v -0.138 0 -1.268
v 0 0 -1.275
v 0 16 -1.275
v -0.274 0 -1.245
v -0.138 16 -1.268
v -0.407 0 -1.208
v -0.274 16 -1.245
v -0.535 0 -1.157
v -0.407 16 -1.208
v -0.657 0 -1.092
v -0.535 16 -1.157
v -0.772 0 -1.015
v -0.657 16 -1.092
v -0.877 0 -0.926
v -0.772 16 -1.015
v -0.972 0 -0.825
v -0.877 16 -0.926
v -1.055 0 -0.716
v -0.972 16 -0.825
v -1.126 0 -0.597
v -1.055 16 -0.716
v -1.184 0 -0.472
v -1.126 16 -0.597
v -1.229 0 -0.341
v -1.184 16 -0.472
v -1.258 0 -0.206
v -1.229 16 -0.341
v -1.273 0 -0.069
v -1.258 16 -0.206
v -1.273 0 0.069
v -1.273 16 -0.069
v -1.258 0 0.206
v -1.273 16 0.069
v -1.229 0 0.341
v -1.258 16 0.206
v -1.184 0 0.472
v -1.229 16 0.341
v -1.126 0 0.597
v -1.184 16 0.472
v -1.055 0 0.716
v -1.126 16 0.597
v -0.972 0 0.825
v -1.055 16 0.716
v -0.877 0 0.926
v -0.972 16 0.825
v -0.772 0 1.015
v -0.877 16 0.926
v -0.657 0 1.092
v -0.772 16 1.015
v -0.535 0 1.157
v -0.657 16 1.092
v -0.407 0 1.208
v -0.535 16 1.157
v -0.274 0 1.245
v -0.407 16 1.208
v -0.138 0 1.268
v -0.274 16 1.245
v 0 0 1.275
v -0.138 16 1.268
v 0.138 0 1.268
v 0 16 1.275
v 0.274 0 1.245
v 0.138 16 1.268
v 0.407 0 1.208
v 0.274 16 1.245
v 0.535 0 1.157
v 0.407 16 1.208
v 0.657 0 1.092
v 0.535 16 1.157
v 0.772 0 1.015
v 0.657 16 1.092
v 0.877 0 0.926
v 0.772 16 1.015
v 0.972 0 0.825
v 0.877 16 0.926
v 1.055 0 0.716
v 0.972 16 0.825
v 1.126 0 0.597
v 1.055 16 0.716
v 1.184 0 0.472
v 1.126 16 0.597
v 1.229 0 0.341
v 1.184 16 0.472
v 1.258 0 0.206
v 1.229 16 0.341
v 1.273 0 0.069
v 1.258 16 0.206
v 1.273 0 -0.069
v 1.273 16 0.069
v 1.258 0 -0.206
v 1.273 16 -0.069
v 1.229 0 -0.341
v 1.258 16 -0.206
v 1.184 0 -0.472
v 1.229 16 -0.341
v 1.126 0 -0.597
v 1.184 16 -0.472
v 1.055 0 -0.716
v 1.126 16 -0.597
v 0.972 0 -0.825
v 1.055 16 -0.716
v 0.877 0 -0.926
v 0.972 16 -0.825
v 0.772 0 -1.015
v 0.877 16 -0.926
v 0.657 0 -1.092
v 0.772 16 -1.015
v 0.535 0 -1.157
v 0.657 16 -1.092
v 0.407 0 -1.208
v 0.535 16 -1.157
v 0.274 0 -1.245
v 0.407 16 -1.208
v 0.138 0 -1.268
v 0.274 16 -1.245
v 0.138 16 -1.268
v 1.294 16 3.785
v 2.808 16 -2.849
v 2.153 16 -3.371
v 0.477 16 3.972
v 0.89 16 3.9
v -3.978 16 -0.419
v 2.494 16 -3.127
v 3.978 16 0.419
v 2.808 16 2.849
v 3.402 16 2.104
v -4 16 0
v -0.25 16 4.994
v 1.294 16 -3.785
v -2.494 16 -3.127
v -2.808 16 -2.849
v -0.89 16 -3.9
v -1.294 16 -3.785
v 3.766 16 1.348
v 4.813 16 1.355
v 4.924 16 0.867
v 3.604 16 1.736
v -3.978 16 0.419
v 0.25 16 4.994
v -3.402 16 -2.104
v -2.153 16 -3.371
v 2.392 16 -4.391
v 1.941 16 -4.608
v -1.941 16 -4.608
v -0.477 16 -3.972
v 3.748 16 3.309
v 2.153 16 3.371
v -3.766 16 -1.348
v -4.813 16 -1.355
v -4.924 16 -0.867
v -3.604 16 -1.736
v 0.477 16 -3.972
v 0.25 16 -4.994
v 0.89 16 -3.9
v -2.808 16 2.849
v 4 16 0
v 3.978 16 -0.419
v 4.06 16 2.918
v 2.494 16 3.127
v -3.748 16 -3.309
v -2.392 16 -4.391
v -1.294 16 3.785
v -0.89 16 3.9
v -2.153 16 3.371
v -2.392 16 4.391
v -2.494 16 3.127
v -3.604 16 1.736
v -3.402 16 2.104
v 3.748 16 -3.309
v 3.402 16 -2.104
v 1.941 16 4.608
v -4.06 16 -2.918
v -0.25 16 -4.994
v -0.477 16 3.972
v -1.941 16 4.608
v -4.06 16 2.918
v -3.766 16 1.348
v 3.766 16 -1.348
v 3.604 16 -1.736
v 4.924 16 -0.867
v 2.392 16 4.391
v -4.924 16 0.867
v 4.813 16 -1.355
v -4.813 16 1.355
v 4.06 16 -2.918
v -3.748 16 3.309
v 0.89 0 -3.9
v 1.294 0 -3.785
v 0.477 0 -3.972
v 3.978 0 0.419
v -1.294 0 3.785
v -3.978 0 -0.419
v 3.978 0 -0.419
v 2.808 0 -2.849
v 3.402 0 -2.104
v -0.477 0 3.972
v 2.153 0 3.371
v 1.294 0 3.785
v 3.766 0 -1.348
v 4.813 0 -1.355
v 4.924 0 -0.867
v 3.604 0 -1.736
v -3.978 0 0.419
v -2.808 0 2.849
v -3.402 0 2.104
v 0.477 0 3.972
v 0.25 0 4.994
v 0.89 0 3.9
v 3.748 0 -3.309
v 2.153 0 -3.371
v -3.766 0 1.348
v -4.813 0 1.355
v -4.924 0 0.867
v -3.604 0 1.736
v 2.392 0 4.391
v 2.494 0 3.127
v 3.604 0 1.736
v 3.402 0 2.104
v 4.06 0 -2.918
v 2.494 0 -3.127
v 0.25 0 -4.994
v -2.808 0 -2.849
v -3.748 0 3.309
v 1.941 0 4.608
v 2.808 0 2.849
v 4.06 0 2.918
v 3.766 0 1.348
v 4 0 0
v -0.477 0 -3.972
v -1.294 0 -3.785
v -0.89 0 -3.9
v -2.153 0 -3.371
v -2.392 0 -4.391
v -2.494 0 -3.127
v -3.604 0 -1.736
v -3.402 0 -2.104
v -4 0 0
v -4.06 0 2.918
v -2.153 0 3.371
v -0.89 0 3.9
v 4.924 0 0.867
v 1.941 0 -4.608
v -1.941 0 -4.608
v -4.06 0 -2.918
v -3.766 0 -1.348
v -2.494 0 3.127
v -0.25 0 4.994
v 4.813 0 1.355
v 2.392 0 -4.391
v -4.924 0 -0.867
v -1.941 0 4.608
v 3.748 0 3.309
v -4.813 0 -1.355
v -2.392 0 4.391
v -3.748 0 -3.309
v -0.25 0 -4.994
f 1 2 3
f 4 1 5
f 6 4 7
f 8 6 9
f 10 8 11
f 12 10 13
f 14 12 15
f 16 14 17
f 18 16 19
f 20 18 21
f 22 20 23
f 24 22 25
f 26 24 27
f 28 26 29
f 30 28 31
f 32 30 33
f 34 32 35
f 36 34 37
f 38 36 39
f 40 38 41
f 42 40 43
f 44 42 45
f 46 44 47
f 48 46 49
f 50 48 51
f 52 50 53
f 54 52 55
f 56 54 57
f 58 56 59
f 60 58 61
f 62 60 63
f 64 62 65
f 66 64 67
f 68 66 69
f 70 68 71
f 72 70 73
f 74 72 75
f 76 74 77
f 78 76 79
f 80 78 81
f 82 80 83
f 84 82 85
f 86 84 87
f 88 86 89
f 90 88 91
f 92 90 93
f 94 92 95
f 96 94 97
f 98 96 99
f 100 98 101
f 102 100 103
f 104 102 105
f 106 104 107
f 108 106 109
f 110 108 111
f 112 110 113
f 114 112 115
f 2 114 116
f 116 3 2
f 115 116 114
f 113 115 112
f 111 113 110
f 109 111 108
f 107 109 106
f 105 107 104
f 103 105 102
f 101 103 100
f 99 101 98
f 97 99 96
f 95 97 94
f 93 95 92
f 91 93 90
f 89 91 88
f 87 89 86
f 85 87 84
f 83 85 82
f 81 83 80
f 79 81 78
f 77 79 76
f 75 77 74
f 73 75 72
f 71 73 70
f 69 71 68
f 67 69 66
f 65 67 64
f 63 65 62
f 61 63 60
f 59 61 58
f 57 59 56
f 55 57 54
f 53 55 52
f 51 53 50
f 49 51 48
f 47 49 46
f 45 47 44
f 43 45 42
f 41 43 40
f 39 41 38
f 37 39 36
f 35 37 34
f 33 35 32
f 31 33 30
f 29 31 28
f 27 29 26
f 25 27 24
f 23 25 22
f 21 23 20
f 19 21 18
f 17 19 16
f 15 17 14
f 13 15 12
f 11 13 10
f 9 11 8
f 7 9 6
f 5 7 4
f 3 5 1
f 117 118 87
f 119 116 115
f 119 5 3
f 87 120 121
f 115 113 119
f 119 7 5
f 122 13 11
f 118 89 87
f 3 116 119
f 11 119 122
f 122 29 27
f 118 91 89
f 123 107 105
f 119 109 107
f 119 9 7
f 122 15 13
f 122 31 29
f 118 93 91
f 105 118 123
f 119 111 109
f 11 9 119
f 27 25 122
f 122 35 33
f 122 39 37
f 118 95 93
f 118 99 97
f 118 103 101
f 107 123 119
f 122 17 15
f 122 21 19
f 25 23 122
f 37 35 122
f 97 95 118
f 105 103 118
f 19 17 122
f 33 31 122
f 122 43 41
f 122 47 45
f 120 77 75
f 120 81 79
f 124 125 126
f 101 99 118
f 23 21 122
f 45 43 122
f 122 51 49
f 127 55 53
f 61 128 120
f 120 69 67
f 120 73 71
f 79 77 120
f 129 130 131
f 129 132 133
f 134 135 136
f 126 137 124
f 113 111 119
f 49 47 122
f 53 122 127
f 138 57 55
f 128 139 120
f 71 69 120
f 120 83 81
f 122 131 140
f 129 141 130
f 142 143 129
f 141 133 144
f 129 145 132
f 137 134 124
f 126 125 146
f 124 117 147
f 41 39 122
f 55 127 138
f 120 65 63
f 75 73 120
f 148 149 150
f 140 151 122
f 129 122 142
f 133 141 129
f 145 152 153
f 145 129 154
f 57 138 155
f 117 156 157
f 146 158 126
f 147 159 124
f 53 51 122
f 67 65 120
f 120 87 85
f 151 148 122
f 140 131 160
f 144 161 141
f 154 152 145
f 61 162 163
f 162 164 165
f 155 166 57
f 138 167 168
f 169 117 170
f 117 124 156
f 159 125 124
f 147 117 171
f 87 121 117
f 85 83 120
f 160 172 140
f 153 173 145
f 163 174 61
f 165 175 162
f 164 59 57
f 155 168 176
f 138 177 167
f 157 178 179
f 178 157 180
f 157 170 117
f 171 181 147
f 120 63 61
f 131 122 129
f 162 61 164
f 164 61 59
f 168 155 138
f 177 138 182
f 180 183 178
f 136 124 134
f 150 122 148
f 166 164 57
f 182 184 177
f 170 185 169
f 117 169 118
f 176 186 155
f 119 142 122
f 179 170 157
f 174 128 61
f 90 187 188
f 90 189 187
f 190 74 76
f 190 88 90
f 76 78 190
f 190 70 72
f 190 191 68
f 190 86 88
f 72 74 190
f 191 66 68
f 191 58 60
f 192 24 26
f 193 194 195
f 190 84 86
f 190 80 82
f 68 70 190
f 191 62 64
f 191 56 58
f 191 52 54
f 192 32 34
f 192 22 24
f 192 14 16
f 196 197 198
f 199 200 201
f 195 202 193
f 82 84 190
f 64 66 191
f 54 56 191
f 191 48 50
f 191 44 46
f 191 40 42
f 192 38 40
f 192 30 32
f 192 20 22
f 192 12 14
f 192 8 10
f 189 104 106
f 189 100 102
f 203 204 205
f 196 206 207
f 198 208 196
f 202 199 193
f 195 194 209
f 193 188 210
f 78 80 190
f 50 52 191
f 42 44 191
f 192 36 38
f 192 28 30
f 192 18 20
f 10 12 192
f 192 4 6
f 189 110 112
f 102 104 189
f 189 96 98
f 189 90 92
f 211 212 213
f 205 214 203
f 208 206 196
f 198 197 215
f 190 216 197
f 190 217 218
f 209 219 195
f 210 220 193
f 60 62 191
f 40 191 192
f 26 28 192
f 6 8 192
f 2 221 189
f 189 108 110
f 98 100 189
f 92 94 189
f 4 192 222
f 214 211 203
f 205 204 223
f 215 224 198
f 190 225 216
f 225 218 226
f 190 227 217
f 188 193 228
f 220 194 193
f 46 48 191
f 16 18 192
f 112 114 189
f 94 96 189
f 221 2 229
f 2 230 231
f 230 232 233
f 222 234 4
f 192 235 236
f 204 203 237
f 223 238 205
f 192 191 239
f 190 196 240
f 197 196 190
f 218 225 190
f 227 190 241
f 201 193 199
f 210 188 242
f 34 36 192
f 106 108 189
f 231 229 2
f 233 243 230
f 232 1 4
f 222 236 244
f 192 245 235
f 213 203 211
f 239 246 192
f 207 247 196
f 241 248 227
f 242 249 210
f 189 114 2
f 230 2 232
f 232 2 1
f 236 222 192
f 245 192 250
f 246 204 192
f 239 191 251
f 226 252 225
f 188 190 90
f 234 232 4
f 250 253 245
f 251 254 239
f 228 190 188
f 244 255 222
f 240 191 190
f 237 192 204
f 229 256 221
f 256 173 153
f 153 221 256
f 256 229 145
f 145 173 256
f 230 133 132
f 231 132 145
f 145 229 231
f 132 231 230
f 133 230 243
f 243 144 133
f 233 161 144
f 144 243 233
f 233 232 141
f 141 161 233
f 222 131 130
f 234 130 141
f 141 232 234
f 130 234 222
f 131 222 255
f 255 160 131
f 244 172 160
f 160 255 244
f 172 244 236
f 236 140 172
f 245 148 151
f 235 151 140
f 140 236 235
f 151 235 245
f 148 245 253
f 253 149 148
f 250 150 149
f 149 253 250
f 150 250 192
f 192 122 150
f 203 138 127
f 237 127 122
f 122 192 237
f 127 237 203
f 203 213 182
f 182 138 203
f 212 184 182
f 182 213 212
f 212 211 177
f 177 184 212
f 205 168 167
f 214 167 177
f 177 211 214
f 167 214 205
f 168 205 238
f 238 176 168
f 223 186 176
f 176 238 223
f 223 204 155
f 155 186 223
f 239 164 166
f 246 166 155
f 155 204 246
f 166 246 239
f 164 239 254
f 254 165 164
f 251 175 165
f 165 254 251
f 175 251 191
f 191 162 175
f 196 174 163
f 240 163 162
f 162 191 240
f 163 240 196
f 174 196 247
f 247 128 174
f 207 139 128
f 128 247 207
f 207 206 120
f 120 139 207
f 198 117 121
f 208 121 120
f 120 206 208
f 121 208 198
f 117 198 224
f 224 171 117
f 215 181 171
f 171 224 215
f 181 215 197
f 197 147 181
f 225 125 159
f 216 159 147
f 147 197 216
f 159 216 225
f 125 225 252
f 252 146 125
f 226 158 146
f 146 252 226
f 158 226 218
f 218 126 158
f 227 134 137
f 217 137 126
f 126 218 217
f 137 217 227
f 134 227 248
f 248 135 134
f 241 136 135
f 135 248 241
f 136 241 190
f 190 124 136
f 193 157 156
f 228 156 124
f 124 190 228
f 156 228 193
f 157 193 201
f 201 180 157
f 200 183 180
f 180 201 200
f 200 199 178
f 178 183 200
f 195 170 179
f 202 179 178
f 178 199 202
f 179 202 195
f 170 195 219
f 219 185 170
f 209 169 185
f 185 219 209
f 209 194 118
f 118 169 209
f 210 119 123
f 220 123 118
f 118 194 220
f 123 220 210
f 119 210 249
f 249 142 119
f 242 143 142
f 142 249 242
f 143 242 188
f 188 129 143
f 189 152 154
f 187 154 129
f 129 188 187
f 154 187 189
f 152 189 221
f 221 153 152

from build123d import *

# Parameters (mm, degrees)
BOSS_EXTRUDE1_DEPTH = 16
SKETCH2_R           = 1.275
CUT_EXTRUDE1_DEPTH  = 18.471332994


with BuildPart() as part:
    # Sketch1 → Boss-Extrude1 (new body)
    with BuildSketch(Plane(origin=(0, 0, 0), x_dir=(1, 0, 0), z_dir=(0, 1, 0))):
        with BuildLine():
            Line((-0.25, 4.993746089), (-0.476626074, 3.971501931))
            ThreePointArc((-0.476626074, 3.971501931), (-0.890083736, 3.899711649), (-1.293744854, 3.784999901))
            Line((-1.293744854, 3.784999901), (-1.941463008, 4.607680695))
            ThreePointArc((-1.941463008, 4.607680695), (-2.169418696, 4.50484434), (-2.391947442, 4.390738825))
            Line((-2.391947442, 4.390738825), (-2.152595362, 3.371399295))
            ThreePointArc((-2.152595362, 3.371399295), (-2.493959207, 3.12732593), (-2.807873746, 2.848832222))
            Line((-2.807873746, 2.848832222), (-3.748395457, 3.30900763))
            ThreePointArc((-3.748395457, 3.30900763), (-3.909157412, 3.117449009), (-4.060140358, 2.918091889))
            Line((-4.060140358, 2.918091889), (-3.402216738, 2.103549682))
            ThreePointArc((-3.402216738, 2.103549682), (-3.603875472, 1.735534956), (-3.765868806, 1.348418382))
            Line((-3.765868806, 1.348418382), (-4.812912215, 1.354945022))
            ThreePointArc((-4.812912215, 1.354945022), (-4.874639561, 1.11260467), (-4.924172682, 0.867481066))
            Line((-4.924172682, 0.867481066), (-3.977987365, 0.419066256))
            ThreePointArc((-3.977987365, 0.419066256), (-4, 0), (-3.977987365, -0.419066256))
            Line((-3.977987365, -0.419066256), (-4.924172682, -0.867481066))
            ThreePointArc((-4.924172682, -0.867481066), (-4.874639561, -1.11260467), (-4.812912215, -1.354945022))
            Line((-4.812912215, -1.354945022), (-3.765868806, -1.348418382))
            ThreePointArc((-3.765868806, -1.348418382), (-3.603875472, -1.735534956), (-3.402216738, -2.103549682))
            Line((-3.402216738, -2.103549682), (-4.060140358, -2.918091889))
            ThreePointArc((-4.060140358, -2.918091889), (-3.909157412, -3.117449009), (-3.748395457, -3.30900763))
            Line((-3.748395457, -3.30900763), (-2.807873746, -2.848832222))
            ThreePointArc((-2.807873746, -2.848832222), (-2.493959207, -3.12732593), (-2.152595362, -3.371399295))
            Line((-2.152595362, -3.371399295), (-2.391947442, -4.390738825))
            ThreePointArc((-2.391947442, -4.390738825), (-2.169418696, -4.50484434), (-1.941463008, -4.607680695))
            Line((-1.941463008, -4.607680695), (-1.293744854, -3.784999901))
            ThreePointArc((-1.293744854, -3.784999901), (-0.890083736, -3.899711649), (-0.476626074, -3.971501931))
            Line((-0.476626074, -3.971501931), (-0.25, -4.993746089))
            ThreePointArc((-0.25, -4.993746089), (0, -5), (0.25, -4.993746089))
            Line((0.25, -4.993746089), (0.476626074, -3.971501931))
            ThreePointArc((0.476626074, -3.971501931), (0.890083736, -3.899711649), (1.293744854, -3.784999901))
            Line((1.293744854, -3.784999901), (1.941463008, -4.607680695))
            ThreePointArc((1.941463008, -4.607680695), (2.169418696, -4.50484434), (2.391947442, -4.390738825))
            Line((2.391947442, -4.390738825), (2.152595362, -3.371399295))
            ThreePointArc((2.152595362, -3.371399295), (2.493959207, -3.12732593), (2.807873746, -2.848832222))
            Line((2.807873746, -2.848832222), (3.748395457, -3.30900763))
            ThreePointArc((3.748395457, -3.30900763), (3.909157412, -3.117449009), (4.060140358, -2.918091889))
            Line((4.060140358, -2.918091889), (3.402216738, -2.103549682))
            ThreePointArc((3.402216738, -2.103549682), (3.603875472, -1.735534956), (3.765868806, -1.348418382))
            Line((3.765868806, -1.348418382), (4.812912215, -1.354945022))
            ThreePointArc((4.812912215, -1.354945022), (4.874639561, -1.11260467), (4.924172682, -0.867481066))
            Line((4.924172682, -0.867481066), (3.977987365, -0.419066256))
            ThreePointArc((3.977987365, -0.419066256), (4, 0), (3.977987365, 0.419066256))
            Line((3.977987365, 0.419066256), (4.924172682, 0.867481066))
            ThreePointArc((4.924172682, 0.867481066), (4.874639561, 1.11260467), (4.812912215, 1.354945022))
            Line((4.812912215, 1.354945022), (3.765868806, 1.348418382))
            ThreePointArc((3.765868806, 1.348418382), (3.603875472, 1.735534956), (3.402216738, 2.103549682))
            Line((3.402216738, 2.103549682), (4.060140358, 2.918091889))
            ThreePointArc((4.060140358, 2.918091889), (3.909157412, 3.117449009), (3.748395457, 3.30900763))
            Line((3.748395457, 3.30900763), (2.807873746, 2.848832222))
            ThreePointArc((2.807873746, 2.848832222), (2.493959207, 3.12732593), (2.152595362, 3.371399295))
            Line((2.152595362, 3.371399295), (2.391947442, 4.390738825))
            ThreePointArc((2.391947442, 4.390738825), (2.169418696, 4.50484434), (1.941463008, 4.607680695))
            Line((1.941463008, 4.607680695), (1.293744854, 3.784999901))
            ThreePointArc((1.293744854, 3.784999901), (0.890083736, 3.899711649), (0.476626074, 3.971501931))
            Line((0.476626074, 3.971501931), (0.25, 4.993746089))
            ThreePointArc((0.25, 4.993746089), (0, 5), (-0.25, 4.993746089))
        make_face()
    extrude(amount=BOSS_EXTRUDE1_DEPTH)

    # Sketch2 → Cut-Extrude1 (cut, through all)
    with BuildSketch(Plane.XZ):
        with Locations(Location((0, 0, 0), (0, 0, 270))):
            Circle(SKETCH2_R)
    extrude(amount=-CUT_EXTRUDE1_DEPTH, mode=Mode.SUBTRACT)


solid = part.part
